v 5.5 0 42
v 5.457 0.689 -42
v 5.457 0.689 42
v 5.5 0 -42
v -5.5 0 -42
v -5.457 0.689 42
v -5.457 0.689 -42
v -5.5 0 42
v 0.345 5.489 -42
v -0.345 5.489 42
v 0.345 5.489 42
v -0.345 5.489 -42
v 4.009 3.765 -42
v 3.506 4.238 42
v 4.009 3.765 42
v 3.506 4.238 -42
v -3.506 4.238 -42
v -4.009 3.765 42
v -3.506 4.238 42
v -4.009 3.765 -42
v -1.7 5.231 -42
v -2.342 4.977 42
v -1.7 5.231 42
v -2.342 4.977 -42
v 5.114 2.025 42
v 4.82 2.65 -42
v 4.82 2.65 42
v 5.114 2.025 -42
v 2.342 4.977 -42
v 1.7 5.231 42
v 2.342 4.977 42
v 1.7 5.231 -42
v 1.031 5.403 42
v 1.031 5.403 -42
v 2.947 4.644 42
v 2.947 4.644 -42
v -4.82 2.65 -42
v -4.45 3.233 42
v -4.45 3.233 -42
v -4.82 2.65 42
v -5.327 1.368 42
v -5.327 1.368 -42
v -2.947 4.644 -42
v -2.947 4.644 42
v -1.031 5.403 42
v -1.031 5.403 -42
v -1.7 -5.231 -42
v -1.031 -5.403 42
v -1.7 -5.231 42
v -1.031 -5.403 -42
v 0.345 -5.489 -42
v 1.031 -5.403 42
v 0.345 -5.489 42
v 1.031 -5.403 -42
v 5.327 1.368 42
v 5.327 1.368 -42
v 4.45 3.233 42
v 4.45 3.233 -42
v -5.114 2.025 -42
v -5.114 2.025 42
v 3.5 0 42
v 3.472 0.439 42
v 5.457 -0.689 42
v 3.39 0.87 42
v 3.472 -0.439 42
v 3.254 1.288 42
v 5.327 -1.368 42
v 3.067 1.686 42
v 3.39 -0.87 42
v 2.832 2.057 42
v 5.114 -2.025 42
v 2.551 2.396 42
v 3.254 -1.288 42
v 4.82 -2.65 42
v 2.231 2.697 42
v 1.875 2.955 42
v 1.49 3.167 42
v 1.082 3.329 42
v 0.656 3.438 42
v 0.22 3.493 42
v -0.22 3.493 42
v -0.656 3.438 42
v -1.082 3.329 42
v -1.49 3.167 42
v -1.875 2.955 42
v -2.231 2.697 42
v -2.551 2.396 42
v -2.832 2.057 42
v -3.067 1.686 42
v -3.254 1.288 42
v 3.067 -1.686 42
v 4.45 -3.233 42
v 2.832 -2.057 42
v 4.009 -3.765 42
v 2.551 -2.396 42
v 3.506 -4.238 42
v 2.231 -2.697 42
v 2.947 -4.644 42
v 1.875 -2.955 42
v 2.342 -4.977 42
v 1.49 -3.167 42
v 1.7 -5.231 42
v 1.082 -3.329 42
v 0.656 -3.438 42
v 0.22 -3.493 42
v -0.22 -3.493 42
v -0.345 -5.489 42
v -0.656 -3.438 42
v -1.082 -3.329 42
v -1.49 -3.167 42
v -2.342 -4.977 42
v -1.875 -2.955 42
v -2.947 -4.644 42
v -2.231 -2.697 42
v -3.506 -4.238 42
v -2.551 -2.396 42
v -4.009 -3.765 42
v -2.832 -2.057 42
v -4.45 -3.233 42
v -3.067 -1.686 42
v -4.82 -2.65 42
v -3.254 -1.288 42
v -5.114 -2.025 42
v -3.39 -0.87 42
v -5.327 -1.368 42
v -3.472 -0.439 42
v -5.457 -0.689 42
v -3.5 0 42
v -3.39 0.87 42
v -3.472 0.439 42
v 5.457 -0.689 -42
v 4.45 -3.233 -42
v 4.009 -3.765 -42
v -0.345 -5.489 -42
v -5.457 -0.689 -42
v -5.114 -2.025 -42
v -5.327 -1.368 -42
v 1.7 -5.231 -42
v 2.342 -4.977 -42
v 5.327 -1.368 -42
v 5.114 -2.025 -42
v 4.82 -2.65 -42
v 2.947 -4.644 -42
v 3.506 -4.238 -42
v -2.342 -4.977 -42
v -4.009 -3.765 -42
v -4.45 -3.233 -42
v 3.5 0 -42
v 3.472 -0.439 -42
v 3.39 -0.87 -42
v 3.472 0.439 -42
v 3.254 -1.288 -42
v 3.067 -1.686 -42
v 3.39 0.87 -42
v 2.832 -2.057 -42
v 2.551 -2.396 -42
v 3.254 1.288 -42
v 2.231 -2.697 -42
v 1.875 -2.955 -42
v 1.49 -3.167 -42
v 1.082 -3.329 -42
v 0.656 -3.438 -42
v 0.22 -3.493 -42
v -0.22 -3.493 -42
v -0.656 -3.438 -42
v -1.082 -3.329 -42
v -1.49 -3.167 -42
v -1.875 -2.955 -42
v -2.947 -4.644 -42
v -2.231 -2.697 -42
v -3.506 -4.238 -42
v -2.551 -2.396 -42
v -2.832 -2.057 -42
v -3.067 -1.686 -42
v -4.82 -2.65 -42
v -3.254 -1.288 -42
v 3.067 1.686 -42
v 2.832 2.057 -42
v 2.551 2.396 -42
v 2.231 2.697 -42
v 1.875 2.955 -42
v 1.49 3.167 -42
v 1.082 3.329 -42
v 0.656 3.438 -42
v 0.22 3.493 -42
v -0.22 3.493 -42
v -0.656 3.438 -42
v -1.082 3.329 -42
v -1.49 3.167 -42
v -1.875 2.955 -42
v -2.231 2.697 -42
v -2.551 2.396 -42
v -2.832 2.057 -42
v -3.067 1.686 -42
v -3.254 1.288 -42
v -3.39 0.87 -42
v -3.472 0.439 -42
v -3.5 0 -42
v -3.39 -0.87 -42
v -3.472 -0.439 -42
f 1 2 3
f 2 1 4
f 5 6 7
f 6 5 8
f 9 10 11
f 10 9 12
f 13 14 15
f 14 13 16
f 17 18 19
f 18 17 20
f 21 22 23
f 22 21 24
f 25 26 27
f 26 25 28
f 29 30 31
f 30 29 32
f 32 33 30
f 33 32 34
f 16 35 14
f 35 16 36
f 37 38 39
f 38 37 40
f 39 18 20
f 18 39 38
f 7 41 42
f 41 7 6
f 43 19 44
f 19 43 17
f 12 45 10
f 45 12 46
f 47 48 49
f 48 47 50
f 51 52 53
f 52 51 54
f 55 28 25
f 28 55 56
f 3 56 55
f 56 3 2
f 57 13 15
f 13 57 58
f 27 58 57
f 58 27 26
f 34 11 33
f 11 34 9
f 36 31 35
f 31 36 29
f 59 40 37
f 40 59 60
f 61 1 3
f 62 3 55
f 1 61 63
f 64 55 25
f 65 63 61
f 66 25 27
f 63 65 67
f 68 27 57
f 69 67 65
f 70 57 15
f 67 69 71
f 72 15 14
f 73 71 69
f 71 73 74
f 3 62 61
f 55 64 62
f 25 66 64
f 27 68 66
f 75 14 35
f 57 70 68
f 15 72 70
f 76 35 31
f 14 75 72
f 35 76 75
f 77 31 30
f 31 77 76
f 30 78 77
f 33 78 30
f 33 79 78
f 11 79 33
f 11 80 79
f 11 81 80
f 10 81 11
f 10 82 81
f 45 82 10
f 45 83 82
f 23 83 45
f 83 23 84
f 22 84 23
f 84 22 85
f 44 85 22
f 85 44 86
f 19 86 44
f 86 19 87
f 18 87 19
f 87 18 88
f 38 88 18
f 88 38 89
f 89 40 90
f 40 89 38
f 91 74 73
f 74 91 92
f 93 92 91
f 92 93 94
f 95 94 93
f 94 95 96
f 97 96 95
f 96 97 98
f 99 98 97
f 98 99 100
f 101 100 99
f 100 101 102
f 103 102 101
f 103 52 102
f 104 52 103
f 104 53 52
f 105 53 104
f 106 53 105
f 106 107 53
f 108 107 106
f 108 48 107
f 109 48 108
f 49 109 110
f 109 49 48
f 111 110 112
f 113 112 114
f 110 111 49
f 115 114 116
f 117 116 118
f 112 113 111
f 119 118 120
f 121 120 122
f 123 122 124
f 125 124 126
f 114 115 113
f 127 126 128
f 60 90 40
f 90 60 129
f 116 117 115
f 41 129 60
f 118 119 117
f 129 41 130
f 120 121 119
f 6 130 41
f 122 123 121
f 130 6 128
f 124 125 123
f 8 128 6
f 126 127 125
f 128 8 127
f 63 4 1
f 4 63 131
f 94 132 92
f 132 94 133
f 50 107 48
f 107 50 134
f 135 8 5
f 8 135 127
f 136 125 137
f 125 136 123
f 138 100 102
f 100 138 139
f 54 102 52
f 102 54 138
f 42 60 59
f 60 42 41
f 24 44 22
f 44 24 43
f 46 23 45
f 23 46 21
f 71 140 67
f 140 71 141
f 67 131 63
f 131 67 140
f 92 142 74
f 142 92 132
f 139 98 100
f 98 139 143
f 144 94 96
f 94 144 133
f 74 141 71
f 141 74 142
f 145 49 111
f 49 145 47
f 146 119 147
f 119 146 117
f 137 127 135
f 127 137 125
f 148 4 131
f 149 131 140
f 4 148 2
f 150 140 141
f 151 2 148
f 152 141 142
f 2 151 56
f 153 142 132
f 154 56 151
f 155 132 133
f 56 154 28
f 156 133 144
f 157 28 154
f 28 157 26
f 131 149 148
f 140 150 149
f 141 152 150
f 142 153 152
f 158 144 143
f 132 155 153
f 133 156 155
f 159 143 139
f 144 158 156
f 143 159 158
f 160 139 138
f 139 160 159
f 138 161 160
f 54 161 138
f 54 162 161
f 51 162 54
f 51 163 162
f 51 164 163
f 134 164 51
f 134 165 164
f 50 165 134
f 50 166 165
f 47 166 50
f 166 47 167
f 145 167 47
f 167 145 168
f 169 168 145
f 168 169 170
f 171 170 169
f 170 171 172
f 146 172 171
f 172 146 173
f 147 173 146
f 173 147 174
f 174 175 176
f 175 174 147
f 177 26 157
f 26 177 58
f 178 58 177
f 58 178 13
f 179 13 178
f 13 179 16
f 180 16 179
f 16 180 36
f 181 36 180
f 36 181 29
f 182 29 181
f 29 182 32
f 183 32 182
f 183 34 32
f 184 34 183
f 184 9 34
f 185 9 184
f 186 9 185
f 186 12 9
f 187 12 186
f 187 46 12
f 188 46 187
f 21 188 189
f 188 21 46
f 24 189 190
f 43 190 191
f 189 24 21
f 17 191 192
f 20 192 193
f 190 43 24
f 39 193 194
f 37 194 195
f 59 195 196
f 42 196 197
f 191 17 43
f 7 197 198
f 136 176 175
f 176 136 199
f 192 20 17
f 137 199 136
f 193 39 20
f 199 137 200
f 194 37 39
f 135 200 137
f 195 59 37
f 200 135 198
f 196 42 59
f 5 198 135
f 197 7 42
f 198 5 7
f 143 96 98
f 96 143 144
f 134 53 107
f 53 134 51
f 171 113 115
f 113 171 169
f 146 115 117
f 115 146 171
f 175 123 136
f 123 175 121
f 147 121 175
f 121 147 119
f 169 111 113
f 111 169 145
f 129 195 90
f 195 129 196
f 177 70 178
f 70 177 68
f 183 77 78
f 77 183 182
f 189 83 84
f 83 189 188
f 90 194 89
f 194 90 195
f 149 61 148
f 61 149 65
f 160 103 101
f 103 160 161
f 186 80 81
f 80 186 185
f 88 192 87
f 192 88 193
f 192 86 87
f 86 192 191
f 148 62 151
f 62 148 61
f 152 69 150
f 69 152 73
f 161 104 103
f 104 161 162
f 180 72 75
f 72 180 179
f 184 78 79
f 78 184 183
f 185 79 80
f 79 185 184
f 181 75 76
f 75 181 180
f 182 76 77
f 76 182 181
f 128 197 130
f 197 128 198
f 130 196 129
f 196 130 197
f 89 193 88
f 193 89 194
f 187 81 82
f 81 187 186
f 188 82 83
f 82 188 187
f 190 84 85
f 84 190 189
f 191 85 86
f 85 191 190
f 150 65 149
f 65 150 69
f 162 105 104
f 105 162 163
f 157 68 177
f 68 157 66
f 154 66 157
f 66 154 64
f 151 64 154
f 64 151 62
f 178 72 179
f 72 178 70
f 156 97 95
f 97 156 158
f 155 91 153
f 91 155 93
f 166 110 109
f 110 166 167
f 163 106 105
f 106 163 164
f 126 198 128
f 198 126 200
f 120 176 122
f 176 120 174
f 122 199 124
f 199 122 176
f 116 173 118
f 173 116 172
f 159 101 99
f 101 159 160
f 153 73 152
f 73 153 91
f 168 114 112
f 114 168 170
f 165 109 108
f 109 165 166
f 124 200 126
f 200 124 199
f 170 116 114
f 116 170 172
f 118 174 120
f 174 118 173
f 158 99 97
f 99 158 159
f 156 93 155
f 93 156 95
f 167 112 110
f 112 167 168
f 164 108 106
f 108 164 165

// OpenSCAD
$fn = 50;


difference() {
	union() {
		translate(v = [0, 0, -42.0000000000]) {
			cylinder(h = 84, r = 5.5000000000);
		}
	}
	union() {
		translate(v = [0, 0, -100.0000000000]) {
			cylinder(h = 200, r = 3.5000000000);
		}
	}
}
